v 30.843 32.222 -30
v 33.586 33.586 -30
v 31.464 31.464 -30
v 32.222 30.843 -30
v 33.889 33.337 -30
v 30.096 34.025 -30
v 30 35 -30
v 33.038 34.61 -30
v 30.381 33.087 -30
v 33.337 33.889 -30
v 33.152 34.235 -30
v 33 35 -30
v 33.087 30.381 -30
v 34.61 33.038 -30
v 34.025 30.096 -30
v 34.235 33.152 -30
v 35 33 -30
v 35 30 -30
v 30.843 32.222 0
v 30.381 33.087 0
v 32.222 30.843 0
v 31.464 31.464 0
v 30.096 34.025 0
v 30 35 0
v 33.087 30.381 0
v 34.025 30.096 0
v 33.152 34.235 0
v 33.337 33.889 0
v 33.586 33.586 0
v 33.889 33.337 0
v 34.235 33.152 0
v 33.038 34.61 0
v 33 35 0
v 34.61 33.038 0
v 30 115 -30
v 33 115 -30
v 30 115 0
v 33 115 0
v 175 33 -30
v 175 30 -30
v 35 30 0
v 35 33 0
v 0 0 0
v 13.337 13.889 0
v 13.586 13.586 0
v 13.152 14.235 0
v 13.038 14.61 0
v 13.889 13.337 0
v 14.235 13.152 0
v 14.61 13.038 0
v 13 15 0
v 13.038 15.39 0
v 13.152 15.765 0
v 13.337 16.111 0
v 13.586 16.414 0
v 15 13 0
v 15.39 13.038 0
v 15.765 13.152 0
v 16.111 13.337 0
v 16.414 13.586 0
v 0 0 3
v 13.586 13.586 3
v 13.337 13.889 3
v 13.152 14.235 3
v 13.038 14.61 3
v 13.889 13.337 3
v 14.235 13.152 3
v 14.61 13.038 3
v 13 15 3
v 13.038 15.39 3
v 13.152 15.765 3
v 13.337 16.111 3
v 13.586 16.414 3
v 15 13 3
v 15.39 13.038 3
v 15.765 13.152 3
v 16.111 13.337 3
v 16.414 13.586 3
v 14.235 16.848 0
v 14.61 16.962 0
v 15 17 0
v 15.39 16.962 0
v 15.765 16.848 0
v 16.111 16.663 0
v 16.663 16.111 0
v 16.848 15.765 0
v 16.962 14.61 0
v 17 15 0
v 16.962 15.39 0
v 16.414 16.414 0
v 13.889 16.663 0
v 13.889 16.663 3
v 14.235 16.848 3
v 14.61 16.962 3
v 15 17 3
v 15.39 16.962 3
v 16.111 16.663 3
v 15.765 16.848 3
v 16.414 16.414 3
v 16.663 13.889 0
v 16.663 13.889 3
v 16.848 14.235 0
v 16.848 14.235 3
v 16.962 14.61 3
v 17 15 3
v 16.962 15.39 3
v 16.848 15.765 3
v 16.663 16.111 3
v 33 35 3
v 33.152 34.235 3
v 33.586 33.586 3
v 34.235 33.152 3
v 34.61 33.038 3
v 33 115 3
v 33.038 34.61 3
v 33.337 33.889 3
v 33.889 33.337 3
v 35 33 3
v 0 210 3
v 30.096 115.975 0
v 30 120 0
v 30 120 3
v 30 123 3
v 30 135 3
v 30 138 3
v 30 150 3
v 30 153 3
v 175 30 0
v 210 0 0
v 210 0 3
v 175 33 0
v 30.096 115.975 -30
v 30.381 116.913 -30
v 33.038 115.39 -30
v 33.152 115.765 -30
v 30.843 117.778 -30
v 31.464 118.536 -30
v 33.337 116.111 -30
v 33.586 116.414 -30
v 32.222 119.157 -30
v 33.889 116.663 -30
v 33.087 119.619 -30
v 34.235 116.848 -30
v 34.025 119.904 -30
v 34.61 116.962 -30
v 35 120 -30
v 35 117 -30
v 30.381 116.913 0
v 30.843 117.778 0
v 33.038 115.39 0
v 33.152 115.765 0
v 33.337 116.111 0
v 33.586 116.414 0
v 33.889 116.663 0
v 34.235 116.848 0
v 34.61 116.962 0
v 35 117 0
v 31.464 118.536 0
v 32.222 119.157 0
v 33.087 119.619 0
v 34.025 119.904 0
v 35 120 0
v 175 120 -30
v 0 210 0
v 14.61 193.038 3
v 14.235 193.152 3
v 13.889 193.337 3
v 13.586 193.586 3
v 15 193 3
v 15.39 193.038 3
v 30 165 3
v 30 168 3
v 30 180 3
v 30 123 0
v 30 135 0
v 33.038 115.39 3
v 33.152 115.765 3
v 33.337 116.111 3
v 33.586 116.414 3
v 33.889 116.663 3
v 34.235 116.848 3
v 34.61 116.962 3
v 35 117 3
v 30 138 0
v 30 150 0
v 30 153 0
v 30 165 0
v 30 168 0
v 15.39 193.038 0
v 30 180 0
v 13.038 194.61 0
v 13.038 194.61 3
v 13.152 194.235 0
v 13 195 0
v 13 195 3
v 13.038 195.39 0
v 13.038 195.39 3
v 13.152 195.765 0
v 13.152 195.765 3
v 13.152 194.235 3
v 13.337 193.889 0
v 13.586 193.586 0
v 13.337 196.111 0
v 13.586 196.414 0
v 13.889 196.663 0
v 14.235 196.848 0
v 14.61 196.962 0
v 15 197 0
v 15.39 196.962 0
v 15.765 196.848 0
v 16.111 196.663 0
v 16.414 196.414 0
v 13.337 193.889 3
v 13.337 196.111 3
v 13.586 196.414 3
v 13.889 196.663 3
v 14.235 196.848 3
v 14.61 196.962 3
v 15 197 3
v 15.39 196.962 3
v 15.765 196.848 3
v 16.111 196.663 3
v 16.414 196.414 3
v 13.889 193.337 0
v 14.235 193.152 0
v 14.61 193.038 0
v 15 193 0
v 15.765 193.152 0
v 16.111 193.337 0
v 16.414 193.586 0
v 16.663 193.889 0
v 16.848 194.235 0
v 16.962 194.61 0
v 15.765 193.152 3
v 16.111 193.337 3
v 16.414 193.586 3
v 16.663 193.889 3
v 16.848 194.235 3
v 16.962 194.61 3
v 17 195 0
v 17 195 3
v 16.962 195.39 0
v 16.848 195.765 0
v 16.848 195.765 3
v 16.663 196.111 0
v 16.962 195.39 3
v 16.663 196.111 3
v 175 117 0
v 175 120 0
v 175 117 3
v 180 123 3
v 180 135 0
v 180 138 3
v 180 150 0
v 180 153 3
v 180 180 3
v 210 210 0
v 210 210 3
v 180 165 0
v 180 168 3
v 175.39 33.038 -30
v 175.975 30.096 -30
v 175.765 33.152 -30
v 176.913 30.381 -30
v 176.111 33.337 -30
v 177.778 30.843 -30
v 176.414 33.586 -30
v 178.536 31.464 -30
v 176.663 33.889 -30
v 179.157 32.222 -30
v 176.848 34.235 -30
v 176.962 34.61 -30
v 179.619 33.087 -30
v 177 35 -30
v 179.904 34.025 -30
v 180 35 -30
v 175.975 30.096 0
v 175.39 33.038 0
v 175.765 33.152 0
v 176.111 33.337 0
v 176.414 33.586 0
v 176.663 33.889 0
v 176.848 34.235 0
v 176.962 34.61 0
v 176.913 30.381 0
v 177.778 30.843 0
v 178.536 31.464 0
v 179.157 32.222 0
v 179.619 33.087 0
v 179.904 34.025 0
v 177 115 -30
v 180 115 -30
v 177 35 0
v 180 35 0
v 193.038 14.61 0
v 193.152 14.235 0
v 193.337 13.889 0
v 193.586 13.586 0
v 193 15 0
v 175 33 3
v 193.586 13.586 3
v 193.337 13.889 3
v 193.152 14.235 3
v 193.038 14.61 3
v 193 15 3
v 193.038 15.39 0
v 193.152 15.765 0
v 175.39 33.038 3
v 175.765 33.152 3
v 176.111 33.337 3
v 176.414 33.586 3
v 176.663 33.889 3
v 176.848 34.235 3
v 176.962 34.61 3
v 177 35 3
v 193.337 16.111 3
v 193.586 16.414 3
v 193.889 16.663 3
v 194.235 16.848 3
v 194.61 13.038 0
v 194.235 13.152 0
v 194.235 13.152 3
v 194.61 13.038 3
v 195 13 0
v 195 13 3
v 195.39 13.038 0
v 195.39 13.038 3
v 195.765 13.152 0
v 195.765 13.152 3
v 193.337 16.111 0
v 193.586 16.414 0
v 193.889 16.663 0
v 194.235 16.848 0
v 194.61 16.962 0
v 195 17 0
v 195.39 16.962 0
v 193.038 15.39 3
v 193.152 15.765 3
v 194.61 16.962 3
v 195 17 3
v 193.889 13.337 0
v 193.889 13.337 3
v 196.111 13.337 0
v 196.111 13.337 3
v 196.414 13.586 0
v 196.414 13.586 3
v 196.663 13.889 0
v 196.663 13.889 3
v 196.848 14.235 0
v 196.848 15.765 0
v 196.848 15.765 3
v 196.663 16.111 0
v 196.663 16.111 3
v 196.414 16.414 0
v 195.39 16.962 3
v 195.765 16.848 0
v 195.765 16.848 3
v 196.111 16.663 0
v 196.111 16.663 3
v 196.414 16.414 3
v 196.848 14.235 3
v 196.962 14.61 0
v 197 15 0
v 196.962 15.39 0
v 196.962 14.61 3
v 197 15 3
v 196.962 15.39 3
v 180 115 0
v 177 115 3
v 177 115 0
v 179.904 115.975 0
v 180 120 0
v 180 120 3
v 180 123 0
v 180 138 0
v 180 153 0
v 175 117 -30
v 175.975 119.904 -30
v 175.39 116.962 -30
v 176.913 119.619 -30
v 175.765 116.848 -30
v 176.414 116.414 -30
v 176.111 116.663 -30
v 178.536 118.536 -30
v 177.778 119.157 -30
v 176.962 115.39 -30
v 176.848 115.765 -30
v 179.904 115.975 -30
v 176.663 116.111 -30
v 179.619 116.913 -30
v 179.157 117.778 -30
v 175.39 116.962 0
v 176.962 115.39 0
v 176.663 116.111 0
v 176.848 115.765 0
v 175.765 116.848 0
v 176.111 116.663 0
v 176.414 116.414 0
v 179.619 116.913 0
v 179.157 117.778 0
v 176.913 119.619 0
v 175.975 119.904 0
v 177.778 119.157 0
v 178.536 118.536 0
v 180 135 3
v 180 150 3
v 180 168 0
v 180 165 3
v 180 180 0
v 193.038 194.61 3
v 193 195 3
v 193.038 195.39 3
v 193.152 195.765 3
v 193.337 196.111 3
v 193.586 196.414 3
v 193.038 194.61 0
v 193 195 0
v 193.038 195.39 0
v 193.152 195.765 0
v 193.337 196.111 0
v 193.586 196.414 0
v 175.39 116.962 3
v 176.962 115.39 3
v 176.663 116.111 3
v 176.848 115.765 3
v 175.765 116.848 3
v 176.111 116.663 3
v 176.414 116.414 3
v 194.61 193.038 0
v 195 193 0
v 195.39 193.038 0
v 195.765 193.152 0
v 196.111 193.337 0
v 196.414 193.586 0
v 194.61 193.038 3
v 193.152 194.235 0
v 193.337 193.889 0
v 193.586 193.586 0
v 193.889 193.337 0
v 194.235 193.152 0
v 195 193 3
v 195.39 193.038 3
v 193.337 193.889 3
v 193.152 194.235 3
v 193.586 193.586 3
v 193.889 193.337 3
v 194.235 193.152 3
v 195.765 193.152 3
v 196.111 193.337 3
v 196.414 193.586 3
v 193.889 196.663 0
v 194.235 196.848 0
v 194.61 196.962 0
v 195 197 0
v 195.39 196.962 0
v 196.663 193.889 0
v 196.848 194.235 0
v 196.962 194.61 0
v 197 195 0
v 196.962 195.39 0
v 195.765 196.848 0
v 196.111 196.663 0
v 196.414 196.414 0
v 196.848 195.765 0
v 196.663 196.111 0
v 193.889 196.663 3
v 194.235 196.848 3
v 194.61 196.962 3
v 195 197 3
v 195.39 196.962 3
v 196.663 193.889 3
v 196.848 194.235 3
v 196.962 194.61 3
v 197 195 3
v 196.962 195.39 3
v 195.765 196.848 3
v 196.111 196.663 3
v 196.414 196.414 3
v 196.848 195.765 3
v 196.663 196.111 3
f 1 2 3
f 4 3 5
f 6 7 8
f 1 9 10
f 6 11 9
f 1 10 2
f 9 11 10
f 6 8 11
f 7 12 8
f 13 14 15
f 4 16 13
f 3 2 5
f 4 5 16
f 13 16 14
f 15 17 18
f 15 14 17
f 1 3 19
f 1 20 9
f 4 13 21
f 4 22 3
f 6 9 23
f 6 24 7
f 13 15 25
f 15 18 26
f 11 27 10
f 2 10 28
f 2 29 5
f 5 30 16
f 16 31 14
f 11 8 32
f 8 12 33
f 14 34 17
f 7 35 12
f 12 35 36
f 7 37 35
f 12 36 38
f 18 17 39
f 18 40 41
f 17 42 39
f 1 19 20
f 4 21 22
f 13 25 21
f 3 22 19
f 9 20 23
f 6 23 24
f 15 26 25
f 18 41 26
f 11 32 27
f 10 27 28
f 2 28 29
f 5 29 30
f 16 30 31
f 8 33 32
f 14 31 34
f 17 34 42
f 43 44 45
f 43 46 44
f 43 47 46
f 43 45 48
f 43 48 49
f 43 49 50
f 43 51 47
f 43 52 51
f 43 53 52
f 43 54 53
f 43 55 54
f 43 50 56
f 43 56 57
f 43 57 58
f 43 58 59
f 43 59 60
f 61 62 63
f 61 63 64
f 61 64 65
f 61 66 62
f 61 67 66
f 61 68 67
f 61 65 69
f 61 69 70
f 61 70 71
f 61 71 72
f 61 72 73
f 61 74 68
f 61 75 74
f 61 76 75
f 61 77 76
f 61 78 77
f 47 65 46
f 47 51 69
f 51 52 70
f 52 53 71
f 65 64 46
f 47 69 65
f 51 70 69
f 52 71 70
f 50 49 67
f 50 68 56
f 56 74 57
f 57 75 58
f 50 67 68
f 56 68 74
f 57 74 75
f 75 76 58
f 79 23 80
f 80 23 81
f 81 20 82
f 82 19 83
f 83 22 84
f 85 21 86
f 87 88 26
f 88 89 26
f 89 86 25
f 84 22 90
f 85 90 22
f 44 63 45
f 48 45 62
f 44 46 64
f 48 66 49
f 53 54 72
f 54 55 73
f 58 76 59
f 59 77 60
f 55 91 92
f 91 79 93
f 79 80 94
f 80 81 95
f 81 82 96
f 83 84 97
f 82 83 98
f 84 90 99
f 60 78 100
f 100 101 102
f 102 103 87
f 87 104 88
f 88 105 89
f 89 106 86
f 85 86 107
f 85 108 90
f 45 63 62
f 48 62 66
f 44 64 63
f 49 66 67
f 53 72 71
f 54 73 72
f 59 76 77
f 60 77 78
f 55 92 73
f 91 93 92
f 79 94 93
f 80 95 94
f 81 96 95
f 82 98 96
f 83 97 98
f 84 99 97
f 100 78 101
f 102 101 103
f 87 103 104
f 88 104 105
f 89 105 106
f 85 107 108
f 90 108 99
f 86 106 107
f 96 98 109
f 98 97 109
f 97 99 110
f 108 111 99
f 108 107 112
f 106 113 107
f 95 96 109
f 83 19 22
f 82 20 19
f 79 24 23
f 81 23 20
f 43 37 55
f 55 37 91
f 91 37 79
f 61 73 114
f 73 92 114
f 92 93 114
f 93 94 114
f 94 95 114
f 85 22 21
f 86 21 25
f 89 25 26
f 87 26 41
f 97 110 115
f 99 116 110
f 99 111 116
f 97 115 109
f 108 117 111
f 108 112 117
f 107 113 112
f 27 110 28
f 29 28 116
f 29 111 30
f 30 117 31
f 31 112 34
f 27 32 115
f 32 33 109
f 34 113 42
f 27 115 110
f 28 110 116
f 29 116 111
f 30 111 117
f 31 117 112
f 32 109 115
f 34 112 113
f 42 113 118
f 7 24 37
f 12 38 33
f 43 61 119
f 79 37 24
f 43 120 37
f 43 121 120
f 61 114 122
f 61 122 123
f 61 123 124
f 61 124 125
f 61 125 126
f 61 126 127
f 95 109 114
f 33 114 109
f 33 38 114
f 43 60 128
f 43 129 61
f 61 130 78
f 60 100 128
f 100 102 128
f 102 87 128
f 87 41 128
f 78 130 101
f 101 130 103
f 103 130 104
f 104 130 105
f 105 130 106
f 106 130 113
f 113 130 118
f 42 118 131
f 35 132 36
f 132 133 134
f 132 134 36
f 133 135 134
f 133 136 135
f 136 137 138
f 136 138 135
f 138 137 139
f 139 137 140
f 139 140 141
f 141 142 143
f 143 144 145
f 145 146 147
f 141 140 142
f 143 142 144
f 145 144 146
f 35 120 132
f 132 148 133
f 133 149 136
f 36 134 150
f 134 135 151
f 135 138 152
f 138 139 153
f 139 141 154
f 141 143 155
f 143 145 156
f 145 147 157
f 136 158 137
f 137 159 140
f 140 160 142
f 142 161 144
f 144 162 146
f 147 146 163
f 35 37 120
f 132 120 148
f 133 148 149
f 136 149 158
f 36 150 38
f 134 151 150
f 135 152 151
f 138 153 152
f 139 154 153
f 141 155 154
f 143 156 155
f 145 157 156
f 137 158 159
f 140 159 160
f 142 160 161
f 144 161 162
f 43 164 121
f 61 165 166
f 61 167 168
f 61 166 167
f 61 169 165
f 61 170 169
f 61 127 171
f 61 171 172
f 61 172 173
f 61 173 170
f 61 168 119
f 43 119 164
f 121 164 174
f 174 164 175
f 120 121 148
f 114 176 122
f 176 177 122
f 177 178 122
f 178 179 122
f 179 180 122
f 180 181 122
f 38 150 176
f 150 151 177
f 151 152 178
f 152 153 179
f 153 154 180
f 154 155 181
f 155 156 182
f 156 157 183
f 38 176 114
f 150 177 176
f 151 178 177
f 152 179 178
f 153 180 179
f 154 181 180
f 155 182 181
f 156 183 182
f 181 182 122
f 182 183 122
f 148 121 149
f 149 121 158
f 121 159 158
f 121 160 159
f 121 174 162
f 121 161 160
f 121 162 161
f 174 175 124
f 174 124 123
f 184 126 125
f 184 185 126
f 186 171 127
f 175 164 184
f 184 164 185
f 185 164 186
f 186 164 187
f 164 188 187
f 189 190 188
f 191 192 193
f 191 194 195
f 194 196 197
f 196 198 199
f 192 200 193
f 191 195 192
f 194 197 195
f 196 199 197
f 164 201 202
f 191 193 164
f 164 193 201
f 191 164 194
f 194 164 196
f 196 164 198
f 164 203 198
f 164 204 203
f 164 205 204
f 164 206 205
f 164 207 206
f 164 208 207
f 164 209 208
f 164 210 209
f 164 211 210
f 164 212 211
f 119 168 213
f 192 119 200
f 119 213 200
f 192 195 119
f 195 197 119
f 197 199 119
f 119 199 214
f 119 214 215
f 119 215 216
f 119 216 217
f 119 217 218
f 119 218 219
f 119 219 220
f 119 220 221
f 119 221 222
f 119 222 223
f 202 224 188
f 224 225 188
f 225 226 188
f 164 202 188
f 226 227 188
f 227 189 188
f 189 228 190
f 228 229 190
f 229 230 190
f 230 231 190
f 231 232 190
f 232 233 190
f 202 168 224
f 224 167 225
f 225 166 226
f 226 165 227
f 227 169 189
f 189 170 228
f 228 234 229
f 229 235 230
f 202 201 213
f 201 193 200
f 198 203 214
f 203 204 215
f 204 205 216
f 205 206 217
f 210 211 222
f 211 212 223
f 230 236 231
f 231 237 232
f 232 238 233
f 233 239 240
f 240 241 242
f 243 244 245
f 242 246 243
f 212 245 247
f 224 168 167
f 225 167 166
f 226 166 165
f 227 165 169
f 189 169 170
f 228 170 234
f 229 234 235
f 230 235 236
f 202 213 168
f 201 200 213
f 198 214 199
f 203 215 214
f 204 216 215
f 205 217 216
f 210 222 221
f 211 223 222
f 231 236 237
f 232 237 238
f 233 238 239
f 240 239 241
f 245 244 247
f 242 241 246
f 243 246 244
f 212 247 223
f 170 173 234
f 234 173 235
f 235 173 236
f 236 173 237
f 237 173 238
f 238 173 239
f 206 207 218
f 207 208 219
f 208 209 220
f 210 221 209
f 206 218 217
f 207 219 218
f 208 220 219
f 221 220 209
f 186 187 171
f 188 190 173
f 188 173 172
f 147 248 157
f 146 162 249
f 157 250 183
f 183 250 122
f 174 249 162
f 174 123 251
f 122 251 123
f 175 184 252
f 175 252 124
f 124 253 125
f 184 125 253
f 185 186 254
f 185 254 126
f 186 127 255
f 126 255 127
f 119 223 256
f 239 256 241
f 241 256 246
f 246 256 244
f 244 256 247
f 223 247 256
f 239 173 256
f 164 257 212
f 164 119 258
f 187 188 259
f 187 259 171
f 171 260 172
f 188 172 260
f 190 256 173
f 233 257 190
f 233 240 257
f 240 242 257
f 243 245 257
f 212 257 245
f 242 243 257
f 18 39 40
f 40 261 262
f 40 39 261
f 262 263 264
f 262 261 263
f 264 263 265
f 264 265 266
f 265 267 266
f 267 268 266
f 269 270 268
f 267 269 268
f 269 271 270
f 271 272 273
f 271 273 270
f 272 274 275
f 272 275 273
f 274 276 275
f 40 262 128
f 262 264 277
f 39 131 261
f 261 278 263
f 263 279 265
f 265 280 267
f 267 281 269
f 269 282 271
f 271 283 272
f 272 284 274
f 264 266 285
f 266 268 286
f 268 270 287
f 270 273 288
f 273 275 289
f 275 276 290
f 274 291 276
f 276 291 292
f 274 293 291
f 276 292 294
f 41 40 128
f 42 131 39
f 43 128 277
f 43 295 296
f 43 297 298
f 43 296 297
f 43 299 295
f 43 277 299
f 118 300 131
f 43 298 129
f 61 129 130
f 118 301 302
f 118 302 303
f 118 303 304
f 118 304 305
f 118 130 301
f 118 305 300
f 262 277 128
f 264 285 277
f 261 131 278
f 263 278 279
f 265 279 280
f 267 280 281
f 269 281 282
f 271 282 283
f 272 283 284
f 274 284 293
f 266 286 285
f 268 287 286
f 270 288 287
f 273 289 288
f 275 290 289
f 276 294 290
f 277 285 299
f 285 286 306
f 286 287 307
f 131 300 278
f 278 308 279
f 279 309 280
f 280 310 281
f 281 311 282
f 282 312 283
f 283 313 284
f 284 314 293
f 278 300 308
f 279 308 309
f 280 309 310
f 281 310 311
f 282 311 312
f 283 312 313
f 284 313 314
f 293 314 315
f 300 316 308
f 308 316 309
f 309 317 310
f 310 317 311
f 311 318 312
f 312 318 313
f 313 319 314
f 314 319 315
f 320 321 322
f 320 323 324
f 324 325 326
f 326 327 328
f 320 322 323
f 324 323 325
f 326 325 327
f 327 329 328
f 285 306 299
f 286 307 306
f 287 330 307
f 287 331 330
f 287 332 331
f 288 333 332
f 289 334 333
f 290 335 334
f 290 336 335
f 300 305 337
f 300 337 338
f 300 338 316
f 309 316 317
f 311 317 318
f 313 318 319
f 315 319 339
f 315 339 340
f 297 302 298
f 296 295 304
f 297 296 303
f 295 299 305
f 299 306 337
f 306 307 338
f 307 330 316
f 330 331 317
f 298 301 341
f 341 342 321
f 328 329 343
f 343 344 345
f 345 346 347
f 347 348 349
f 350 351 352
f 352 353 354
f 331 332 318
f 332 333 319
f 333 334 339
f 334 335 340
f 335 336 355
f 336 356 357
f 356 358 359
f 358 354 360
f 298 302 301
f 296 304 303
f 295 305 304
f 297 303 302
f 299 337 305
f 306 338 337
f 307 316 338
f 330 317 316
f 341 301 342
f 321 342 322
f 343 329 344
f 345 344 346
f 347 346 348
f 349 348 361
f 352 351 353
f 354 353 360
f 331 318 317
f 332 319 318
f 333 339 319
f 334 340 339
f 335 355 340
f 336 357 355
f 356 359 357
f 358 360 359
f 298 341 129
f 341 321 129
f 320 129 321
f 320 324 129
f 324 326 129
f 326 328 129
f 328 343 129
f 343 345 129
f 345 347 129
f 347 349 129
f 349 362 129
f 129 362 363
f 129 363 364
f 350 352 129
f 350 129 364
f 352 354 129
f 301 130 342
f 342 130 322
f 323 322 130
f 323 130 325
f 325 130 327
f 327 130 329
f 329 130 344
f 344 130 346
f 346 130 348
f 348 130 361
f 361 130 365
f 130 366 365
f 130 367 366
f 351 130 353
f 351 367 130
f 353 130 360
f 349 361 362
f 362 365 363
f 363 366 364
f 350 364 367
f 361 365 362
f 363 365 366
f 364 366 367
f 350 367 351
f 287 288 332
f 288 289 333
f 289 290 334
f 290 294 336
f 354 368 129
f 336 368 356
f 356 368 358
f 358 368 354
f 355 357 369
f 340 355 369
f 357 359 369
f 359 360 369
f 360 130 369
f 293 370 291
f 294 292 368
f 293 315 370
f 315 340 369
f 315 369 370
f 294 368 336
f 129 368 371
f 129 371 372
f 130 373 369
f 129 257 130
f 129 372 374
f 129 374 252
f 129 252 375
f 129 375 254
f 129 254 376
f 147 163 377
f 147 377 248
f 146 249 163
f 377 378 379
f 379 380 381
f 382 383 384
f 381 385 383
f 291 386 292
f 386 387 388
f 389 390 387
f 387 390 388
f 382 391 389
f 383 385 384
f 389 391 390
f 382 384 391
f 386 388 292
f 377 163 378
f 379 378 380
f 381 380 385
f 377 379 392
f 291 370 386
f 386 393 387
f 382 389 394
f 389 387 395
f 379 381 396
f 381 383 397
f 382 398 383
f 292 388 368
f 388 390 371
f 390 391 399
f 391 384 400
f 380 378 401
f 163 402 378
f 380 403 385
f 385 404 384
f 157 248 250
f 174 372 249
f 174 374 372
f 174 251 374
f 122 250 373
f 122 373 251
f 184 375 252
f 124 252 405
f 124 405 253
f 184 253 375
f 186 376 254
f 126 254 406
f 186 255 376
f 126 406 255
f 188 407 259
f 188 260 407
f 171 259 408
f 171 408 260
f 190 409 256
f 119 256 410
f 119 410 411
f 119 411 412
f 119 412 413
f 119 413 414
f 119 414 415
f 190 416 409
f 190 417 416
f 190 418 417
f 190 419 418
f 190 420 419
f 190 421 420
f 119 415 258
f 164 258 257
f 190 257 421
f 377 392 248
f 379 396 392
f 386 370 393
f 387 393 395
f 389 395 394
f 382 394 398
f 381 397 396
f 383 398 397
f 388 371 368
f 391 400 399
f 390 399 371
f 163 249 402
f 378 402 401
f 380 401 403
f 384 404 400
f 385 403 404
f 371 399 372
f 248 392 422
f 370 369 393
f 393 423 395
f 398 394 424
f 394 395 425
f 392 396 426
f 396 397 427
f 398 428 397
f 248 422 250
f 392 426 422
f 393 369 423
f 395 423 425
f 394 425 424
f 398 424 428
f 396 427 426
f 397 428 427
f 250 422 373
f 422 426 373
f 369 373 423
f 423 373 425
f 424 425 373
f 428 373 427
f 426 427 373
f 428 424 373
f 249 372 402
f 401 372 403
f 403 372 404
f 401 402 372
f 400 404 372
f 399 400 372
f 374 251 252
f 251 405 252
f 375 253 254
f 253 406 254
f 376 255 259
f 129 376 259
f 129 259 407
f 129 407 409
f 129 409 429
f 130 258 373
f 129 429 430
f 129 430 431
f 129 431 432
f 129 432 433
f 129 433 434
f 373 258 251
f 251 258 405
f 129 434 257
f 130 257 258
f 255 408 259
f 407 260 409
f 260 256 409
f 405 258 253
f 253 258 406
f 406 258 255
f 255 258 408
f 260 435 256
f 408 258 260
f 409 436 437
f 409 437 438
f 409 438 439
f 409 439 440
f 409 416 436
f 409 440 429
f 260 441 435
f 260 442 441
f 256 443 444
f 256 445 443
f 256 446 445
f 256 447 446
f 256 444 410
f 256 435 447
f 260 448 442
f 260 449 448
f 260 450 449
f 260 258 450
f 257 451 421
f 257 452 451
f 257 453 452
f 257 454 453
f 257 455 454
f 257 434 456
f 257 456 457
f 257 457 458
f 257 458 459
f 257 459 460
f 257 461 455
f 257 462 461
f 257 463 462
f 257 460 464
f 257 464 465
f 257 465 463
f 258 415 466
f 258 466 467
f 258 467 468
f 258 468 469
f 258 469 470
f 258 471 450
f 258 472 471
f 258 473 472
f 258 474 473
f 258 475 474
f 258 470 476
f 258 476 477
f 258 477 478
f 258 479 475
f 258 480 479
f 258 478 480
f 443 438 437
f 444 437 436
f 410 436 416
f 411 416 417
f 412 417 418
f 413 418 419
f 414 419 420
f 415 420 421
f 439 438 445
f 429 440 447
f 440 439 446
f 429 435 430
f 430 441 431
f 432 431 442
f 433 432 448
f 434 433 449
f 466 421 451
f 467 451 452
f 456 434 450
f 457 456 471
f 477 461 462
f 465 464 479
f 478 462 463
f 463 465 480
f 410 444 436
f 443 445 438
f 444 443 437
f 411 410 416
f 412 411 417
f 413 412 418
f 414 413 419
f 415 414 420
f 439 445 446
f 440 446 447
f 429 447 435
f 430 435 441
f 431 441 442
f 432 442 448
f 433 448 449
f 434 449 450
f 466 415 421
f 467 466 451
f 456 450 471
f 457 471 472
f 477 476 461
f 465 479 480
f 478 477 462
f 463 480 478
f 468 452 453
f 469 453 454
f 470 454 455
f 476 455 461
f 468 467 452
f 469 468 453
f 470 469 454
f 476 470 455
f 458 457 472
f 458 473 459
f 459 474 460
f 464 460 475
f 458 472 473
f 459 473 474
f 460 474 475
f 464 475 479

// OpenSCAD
// Ventilation grille with duct collar (rounded corners)
// All dimensions in mm
// Shaft: 150.0x150.0, Plate: 210.0x210.0, Wall: 3.0mm
// Duct connection: 150.0x90.0, Collar depth: 30.0mm, Corner R: 5.0mm

$fn = 32;

shaft = 150.0;
plate = 210.0;
wall = 3.0;
duct_w = 150.0;
duct_h = 90.0;
collar_depth = 30.0;
collar_r = 5.0;
hole_dia = 4.0;
hole_offset = 15.0;
margin = (plate - shaft) / 2;

grille_slat = 3.0;
grille_area_h = shaft - duct_h - wall;
grille_start_y = margin + duct_h + wall;
n_slats = 3;
actual_gap = 12.00;

module rounded_rect(w, h, depth, r) {
    translate([r, r, 0])
    minkowski() {
        cube([w - 2*r, h - 2*r, depth/2]);
        cylinder(r=r, h=depth/2);
    }
}

difference() {
    union() {
        // Base plate — cut only collar inner hole + grille zone
        difference() {
            cube([plate, plate, wall]);
            // Collar inner hole (rounded) — air passage
            translate([margin + wall, margin + wall, -1])
                rounded_rect(duct_w - 2*wall, duct_h - 2*wall, wall + 2, max(collar_r - wall, 0.5));
            // Grille opening (straight)
            translate([margin, margin + duct_h, -1])
                cube([shaft, shaft - duct_h, wall + 2]);
        }

        // Collar (rounded, protrudes downward from plate)
        translate([margin, margin, -collar_depth])
        difference() {
            rounded_rect(duct_w, duct_h, collar_depth, collar_r);
            translate([wall, wall, -1])
                rounded_rect(duct_w - 2*wall, duct_h - 2*wall, collar_depth + 2, max(collar_r - wall, 0.5));
        }

        // Divider bar between duct and grille
        translate([margin, margin + duct_h, 0])
            cube([shaft, wall, wall]);

        // Grille slats
        for (i = [0 : n_slats - 1]) {
            translate([margin, grille_start_y + actual_gap * (i + 1) + grille_slat * i, 0])
                cube([shaft, grille_slat, wall]);
        }
    }

    // Mounting holes (4x corners)
    for (pos = [[hole_offset, hole_offset],
                [plate - hole_offset, hole_offset],
                [hole_offset, plate - hole_offset],
                [plate - hole_offset, plate - hole_offset]]) {
        translate([pos[0], pos[1], -1])
            cylinder(h = wall + 2, d = hole_dia);
    }
}
